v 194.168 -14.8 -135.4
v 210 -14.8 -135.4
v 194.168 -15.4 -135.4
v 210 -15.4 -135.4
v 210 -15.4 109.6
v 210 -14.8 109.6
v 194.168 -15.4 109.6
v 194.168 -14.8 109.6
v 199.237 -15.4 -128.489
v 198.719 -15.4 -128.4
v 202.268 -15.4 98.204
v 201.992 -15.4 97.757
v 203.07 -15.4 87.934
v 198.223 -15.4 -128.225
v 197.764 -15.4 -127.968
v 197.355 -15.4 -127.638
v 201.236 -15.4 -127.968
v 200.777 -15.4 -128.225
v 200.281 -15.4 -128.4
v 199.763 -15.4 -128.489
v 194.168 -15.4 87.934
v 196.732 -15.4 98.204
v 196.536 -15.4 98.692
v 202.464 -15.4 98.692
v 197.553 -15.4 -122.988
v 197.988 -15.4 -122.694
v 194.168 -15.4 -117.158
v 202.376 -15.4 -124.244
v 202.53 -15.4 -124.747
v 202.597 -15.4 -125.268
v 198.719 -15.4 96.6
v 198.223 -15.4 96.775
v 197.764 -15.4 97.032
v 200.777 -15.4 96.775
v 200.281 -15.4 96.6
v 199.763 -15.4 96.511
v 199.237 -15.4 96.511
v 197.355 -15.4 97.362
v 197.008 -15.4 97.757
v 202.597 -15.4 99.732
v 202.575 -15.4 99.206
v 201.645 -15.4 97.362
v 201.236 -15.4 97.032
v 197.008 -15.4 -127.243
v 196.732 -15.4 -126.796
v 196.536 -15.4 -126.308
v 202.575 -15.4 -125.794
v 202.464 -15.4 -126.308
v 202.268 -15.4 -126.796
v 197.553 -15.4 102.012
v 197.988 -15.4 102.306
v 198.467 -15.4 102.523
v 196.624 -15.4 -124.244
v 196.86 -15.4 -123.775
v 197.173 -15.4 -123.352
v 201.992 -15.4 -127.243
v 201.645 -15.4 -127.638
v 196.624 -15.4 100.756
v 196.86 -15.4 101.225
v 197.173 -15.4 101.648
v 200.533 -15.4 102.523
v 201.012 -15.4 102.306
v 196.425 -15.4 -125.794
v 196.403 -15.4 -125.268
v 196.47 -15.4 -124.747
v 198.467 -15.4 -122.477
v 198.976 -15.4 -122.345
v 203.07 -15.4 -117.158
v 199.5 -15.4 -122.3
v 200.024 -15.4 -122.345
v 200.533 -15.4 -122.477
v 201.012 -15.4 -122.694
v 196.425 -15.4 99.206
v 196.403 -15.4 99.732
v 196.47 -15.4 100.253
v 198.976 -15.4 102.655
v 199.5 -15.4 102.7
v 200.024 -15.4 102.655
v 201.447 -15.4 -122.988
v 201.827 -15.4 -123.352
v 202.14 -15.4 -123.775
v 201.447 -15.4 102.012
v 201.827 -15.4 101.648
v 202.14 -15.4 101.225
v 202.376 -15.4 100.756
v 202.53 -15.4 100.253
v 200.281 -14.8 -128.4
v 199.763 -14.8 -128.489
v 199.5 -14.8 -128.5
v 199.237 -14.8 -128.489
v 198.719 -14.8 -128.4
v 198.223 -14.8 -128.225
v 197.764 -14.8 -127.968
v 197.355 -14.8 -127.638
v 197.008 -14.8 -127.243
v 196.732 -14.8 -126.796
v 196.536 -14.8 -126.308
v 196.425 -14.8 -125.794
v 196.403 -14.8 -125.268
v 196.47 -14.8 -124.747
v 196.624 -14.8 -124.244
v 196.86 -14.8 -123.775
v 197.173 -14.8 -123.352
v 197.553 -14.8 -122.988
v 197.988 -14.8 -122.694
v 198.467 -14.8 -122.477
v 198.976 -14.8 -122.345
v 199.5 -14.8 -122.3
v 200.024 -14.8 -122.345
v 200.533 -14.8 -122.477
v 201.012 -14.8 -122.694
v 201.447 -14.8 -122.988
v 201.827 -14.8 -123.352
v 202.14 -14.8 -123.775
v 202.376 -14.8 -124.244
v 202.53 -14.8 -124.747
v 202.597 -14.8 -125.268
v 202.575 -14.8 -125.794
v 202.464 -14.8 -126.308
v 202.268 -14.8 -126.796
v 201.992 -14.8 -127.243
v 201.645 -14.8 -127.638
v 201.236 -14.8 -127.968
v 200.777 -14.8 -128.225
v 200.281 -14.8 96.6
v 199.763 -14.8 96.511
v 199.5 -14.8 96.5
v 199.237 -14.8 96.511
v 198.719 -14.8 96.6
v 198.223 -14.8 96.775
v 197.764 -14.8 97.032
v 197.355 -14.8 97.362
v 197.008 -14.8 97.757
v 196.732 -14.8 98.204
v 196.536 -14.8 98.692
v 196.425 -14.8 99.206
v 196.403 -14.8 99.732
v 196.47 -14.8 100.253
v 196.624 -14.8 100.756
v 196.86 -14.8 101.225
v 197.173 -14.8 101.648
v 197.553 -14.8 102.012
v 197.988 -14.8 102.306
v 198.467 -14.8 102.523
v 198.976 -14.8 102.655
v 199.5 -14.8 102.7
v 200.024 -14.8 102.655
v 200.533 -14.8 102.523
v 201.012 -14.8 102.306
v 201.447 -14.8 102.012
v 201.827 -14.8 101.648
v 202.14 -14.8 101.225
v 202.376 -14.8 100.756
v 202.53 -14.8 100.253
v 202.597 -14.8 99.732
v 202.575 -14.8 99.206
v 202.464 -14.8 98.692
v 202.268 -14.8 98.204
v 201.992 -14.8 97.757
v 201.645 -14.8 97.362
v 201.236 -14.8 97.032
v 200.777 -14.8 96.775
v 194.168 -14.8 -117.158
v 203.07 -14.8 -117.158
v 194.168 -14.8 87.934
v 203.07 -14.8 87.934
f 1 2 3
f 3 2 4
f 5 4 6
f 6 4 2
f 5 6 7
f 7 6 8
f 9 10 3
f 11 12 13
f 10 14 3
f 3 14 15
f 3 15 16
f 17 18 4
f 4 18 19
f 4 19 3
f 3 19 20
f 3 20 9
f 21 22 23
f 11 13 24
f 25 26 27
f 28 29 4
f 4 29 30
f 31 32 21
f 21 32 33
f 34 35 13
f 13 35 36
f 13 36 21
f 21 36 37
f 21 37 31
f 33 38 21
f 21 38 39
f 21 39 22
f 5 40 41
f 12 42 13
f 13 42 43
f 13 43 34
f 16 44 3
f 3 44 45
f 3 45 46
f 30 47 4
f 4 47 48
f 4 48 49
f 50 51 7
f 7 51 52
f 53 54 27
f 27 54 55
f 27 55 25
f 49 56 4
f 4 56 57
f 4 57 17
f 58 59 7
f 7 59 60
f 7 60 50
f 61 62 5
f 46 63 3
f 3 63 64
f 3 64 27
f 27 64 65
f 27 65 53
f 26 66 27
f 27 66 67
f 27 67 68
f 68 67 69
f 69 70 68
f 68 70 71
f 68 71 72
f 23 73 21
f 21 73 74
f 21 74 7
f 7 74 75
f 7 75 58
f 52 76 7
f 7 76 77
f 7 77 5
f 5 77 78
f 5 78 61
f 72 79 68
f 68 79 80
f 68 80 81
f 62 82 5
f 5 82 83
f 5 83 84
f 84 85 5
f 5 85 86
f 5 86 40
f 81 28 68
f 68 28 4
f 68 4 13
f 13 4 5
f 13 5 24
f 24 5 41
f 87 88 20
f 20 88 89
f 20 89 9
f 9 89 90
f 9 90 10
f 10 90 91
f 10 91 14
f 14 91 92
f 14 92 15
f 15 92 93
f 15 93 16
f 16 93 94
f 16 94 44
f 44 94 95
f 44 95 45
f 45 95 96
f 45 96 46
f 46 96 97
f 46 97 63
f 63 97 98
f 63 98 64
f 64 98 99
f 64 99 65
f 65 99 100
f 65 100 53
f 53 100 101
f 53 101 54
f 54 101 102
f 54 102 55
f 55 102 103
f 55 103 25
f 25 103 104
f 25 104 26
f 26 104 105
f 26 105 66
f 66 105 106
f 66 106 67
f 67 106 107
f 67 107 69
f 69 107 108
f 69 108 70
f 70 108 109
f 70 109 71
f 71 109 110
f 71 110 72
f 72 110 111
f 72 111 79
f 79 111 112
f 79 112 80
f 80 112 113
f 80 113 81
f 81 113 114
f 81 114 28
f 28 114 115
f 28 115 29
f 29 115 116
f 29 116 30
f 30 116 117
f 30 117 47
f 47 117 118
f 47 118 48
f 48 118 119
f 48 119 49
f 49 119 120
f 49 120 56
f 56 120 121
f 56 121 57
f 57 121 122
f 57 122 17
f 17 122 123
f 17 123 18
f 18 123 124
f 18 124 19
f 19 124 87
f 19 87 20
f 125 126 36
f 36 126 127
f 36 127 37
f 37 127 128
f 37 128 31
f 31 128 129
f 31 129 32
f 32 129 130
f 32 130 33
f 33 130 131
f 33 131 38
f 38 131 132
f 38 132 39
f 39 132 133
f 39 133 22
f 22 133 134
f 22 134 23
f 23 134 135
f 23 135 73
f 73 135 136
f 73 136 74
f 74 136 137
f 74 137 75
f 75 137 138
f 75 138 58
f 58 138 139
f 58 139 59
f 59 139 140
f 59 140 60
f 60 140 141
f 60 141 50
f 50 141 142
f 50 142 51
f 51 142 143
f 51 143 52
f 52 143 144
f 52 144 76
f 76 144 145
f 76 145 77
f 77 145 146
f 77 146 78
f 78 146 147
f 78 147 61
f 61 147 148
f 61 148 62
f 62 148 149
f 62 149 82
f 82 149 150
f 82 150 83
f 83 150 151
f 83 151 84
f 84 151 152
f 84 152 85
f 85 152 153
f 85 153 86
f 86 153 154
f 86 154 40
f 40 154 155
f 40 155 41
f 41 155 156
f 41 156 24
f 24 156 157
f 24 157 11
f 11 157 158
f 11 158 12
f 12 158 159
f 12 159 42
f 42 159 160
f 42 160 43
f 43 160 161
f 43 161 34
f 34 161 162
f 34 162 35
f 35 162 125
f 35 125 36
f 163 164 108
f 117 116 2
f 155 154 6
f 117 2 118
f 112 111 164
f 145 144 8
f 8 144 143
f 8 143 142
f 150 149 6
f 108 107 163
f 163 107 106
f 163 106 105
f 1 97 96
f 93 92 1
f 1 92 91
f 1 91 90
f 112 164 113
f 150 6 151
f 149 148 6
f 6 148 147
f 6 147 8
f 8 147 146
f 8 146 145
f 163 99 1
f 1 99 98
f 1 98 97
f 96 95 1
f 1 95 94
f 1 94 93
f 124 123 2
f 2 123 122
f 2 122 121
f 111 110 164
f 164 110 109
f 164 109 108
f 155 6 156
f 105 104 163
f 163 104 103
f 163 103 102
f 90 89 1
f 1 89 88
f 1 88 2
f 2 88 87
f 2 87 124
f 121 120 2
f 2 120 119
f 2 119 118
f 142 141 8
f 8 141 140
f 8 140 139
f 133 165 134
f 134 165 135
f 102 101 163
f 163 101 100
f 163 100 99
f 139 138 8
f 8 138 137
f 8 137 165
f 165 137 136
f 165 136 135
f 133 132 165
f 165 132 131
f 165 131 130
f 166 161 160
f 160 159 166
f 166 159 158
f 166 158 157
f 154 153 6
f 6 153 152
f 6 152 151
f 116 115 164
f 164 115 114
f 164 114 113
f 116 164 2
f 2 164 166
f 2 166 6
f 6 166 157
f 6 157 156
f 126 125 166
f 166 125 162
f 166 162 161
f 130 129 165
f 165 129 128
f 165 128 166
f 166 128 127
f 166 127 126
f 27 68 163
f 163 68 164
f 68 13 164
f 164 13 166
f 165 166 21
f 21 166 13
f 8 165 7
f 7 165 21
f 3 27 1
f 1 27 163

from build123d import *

# Parameters (mm, degrees)
BOSS_EXTRUDE1_DEPTH   = 5.5
BOSS_EXTRUDE1_2_DEPTH = 5.5
SKETCH2_W             = 112.4
SKETCH2_H             = 112.4
BOSS_EXTRUDE2_DEPTH   = 9.4
BOSS_EXTRUDE3_START   = 9.4
SKETCH2_3_W           = 246
SKETCH2_3_H           = 245
BOSS_EXTRUDE3_DEPTH   = 6
SKETCH3_R             = 3.1
CUT_EXTRUDE1_DEPTH    = 251.310147617
BOSS_EXTRUDE4_DEPTH   = 15
SKETCH5_W             = 16
SKETCH5_H             = 22.5
BOSS_EXTRUDE5_DEPTH   = 3.9
SKETCH6_W             = 16
SKETCH6_H             = 20.5
CUT_EXTRUDE2_DEPTH    = 3.4
CHAMFER1_SIZE         = 2
CHAMFER2_SIZE         = 3.05
CHAMFER3_SIZE         = 3
CHAMFER4_SIZE         = 3
SKETCH8_W             = 79.1
SKETCH8_H             = 5
CUT_EXTRUDE3_DEPTH    = 0.1
SKETCH9_W             = 246
SKETCH9_H             = 27.9
CUT_EXTRUDE4_DEPTH    = 324.051327191
CUT_EXTRUDE5_DEPTH    = 250.867004624
SKETCH11_W            = 230.168067581
SKETCH11_H            = 245
CUT_EXTRUDE6_DEPTH    = 250.867004624


with BuildPart() as part:
    # Sketch1 → Boss-Extrude1 (new body)
    with BuildSketch(Plane(origin=(0, 0, 0), x_dir=(1, 0, 0), z_dir=(0, 1, 0))):
        Polygon((-6, -6), (-6, 106.4), (7.7, 106.4), (7.7, 100.4), (0, 100.4), (0, 0), (100.4, 0), (100.4, 40.9), (106.4, 40.9), (106.4, -6), align=None)
    extrude(amount=BOSS_EXTRUDE1_DEPTH)



with BuildPart() as body_2:
    # Sketch1 → Boss-Extrude1 2 (new body)
    with BuildSketch(Plane(origin=(0, 0, 0), x_dir=(1, 0, 0), z_dir=(0, 1, 0))):
        Polygon((92.7, 100.4), (92.7, 106.4), (106.4, 106.4), (106.4, 59.5), (100.4, 59.5), (100.4, 100.4), align=None)
    extrude(amount=BOSS_EXTRUDE1_2_DEPTH)


with BuildPart() as part_1:
    add(part.part)

    add(body_2.part)  # Boss-Extrude2 merges body 2
    # Sketch2 → Boss-Extrude2 (add)
    with BuildSketch(Plane.XZ):
        with Locations((50.2, -50.2)):
            Rectangle(SKETCH2_W, SKETCH2_H)
    extrude(amount=BOSS_EXTRUDE2_DEPTH)

    # Sketch2<3> → Boss-Extrude3 (add)
    with BuildSketch(Plane.XZ.offset(BOSS_EXTRUDE3_START)):
        with Locations((87, -12.9)):
            Rectangle(SKETCH2_3_W, SKETCH2_3_H)
    extrude(amount=BOSS_EXTRUDE3_DEPTH)

    # Sketch3 → Cut-Extrude1 (cut, through all)
    with BuildSketch(Plane(origin=(0, -9.4, 0), x_dir=(1, 0, 0), z_dir=(0, 1, 0))):
        with Locations(Location((-26.5, 125.4, 0), (0, 0, 270))):
            Circle(SKETCH3_R)
        with Locations(Location((-26.5, -99.6, 0), (0, 0, 90))):
            Circle(SKETCH3_R)
        with Locations(Location((199.5, 125.4, 0), (0, 0, 270))):
            Circle(SKETCH3_R)
        with Locations(Location((199.5, -99.6, 0), (0, 0, 270))):
            Circle(SKETCH3_R)
    extrude(amount=-CUT_EXTRUDE1_DEPTH, mode=Mode.SUBTRACT)

    # Sketch4 → Boss-Extrude4 (add)
    with BuildSketch(Plane(origin=(0, -9.4, 0), x_dir=(1, 0, 0), z_dir=(0, 1, 0))):
        with BuildLine():
            Line((-16, -109.6), (49, -109.6))
            Line((49, -109.6), (49, -6))
            Line((49, -6), (-36, -6))
            Line((-36, -6), (-36, -89.6))
            Line((-36, -89.6), (-22, -89.6))
            ThreePointArc((-22, -89.6), (-17.757359313, -91.357359313), (-16, -95.6))
            Line((-16, -95.6), (-16, -109.6))
        make_face()
    extrude(amount=BOSS_EXTRUDE4_DEPTH)

    # Sketch5 → Boss-Extrude5 (add)
    with BuildSketch(Plane(origin=(0, 0, -106.4), x_dir=(-1, 0, 0), z_dir=(0, 0, -1))):
        with Locations((-99.9, 1.85)):
            Rectangle(SKETCH5_W, SKETCH5_H)
        with Locations((-0.5, 1.85)):
            Rectangle(SKETCH5_W, SKETCH5_H)
    extrude(amount=BOSS_EXTRUDE5_DEPTH)

    # Sketch6 → Cut-Extrude2 (cut)
    with BuildSketch(Plane(origin=(0, 0, -110.3), x_dir=(-1, 0, 0), z_dir=(0, 0, -1))):
        with Locations((-0.5, 0.85)):
            Rectangle(SKETCH6_W, SKETCH6_H)
        with Locations((-99.9, 0.85)):
            Rectangle(SKETCH6_W, SKETCH6_H)
    extrude(amount=-CUT_EXTRUDE2_DEPTH, mode=Mode.SUBTRACT)

    # Chamfer1
    # the kernel refuses this chamfer: 2 mm, written as the material it adds along each edge
    with BuildSketch(Plane(origin=(92.7, -5.143365976, -106.4), x_dir=(-0.9996219169112968, 0, -0.027495876610589005), z_dir=(0, 1, 0))) as chamfer1_piece_1_section:
        Polygon((CHAMFER1_SIZE * 0.999621916911, CHAMFER1_SIZE * 0.0274958766106), (-CHAMFER1_SIZE * 0.0274958766106, CHAMFER1_SIZE * 0.999621916911), (0, 0), align=None)
    chamfer1_piece_1 = extrude(amount=10.643365976, mode=Mode.PRIVATE)
    chamfer1_piece_1 = split(chamfer1_piece_1, bisect_by=Plane(origin=(91.9, -2.571682988, -105.57221902), z_dir=(1, 0, 0)), keep=Keep.TOP, mode=Mode.PRIVATE)
    add(chamfer1_piece_1)
    with BuildSketch(Plane(origin=(92.7, 5.5, -106.4), x_dir=(0, 0.9996219169112968, -0.027495876610589075), z_dir=(1, 0, 0)), Plane(origin=(-6, 5.5, -106.4), x_dir=(0, 0.9996219169112968, -0.027495876610589075), z_dir=(1, 0, 0))) as chamfer1_piece_2:
        Polygon((CHAMFER1_SIZE * 0.999621916911, CHAMFER1_SIZE * 0.0274958766106), (-CHAMFER1_SIZE * 0.0274958766106, CHAMFER1_SIZE * 0.999621916911), (0, 0), align=None)
    extrude(amount=13.7)
    with BuildSketch(Plane(origin=(106.4, 5.5, -106.4), x_dir=(-0.027495876610589005, 0, 0.9996219169112968), z_dir=(0, -1, 0))) as chamfer1_piece_3_section:
        Polygon((CHAMFER1_SIZE * 0.999621916911, -CHAMFER1_SIZE * 0.0274958766106), (-CHAMFER1_SIZE * 0.0274958766106, -CHAMFER1_SIZE * 0.999621916911), (0, 0), align=None)
    chamfer1_piece_3 = extrude(amount=14.9, mode=Mode.PRIVATE)
    chamfer1_piece_3 = split(chamfer1_piece_3, bisect_by=Plane(origin=(107.9, -1.95, -105.69608178), z_dir=(-1, 0, 0)), keep=Keep.TOP, mode=Mode.PRIVATE)
    add(chamfer1_piece_3)
    with BuildSketch(Plane(origin=(106.4, 5.5, -106.4), x_dir=(-0.027495876610589005, 0, 0.9996219169112968), z_dir=(0, -1, 0))) as chamfer1_piece_4_section:
        Polygon((CHAMFER1_SIZE * 0.999621916911, -CHAMFER1_SIZE * 0.0274958766106), (-CHAMFER1_SIZE * 0.0274958766106, -CHAMFER1_SIZE * 0.999621916911), (0, 0), align=None)
    chamfer1_piece_4 = extrude(amount=20.043365976, mode=Mode.PRIVATE)
    chamfer1_piece_4 = split(chamfer1_piece_4, bisect_by=Plane(origin=(106.974972825, -9.4, -105.69608178), z_dir=(0, -1, 0)), keep=Keep.TOP, mode=Mode.PRIVATE)
    chamfer1_piece_4 = split(chamfer1_piece_4, bisect_by=Plane(origin=(107.9, -11.971682988, -105.69608178), z_dir=(-1, 0, 0)), keep=Keep.TOP, mode=Mode.PRIVATE)
    add(chamfer1_piece_4)
    with BuildSketch(Plane(origin=(106.4, 5.5, -106.4), x_dir=(-0.027495876610589005, 0, 0.9996219169112968), z_dir=(0, -1, 0))) as chamfer1_piece_5_section:
        Polygon((CHAMFER1_SIZE * 0.999621916911, -CHAMFER1_SIZE * 0.0274958766106), (-CHAMFER1_SIZE * 0.0274958766106, -CHAMFER1_SIZE * 0.999621916911), (0, 0), align=None)
    chamfer1_piece_5 = extrude(amount=20.043365976, mode=Mode.PRIVATE)
    chamfer1_piece_5 = split(chamfer1_piece_5, bisect_by=Plane(origin=(108.09753906, -9.4, -106.284213701), z_dir=(0, -1, 0)), keep=Keep.TOP, mode=Mode.PRIVATE)
    chamfer1_piece_5 = split(chamfer1_piece_5, bisect_by=Plane(origin=(107.9, -11.971682988, -106.284213701), z_dir=(1, 0, 0)), keep=Keep.TOP, mode=Mode.PRIVATE)
    add(chamfer1_piece_5)
    with BuildSketch(Plane(origin=(7.7, -5.143365976, -106.4), x_dir=(0.9996219169112965, 0, -0.027495876610589057), z_dir=(0, 1, 0))) as chamfer1_piece_6_section:
        Polygon((CHAMFER1_SIZE * 0.999621916911, -CHAMFER1_SIZE * 0.0274958766106), (-CHAMFER1_SIZE * 0.0274958766106, -CHAMFER1_SIZE * 0.999621916911), (0, 0), align=None)
    chamfer1_piece_6 = extrude(amount=10.643365976, mode=Mode.PRIVATE)
    chamfer1_piece_6 = split(chamfer1_piece_6, bisect_by=Plane(origin=(8.5, -2.571682988, -105.57221902), z_dir=(-1, 0, 0)), keep=Keep.TOP, mode=Mode.PRIVATE)
    add(chamfer1_piece_6)
    with BuildSketch(Plane(origin=(-6, 5.5, -106.4), x_dir=(-0.9996219169112968, 0, -0.027495876610589075), z_dir=(0, -1, 0))) as chamfer1_piece_7_section:
        Polygon((CHAMFER1_SIZE * 0.999621916911, -CHAMFER1_SIZE * 0.0274958766106), (-CHAMFER1_SIZE * 0.0274958766106, -CHAMFER1_SIZE * 0.999621916911), (0, 0), align=None)
    chamfer1_piece_7 = extrude(amount=14.9, mode=Mode.PRIVATE)
    chamfer1_piece_7 = split(chamfer1_piece_7, bisect_by=Plane(origin=(-7.5, -1.95, -105.69608178), z_dir=(1, 0, 0)), keep=Keep.TOP, mode=Mode.PRIVATE)
    add(chamfer1_piece_7)
    with BuildSketch(Plane(origin=(-6, 5.5, -106.4), x_dir=(-0.9996219169112968, 0, -0.027495876610589075), z_dir=(0, -1, 0))) as chamfer1_piece_8_section:
        Polygon((CHAMFER1_SIZE * 0.999621916911, -CHAMFER1_SIZE * 0.0274958766106), (-CHAMFER1_SIZE * 0.0274958766106, -CHAMFER1_SIZE * 0.999621916911), (0, 0), align=None)
    chamfer1_piece_8 = extrude(amount=20.043365976, mode=Mode.PRIVATE)
    chamfer1_piece_8 = split(chamfer1_piece_8, bisect_by=Plane(origin=(-7.69753906, -9.4, -106.284213701), z_dir=(0, -1, 0)), keep=Keep.TOP, mode=Mode.PRIVATE)
    chamfer1_piece_8 = split(chamfer1_piece_8, bisect_by=Plane(origin=(-7.5, -11.971682988, -106.284213701), z_dir=(-1, 0, 0)), keep=Keep.TOP, mode=Mode.PRIVATE)
    add(chamfer1_piece_8)
    with BuildSketch(Plane(origin=(-6, 5.5, -106.4), x_dir=(-0.9996219169112968, 0, -0.027495876610589075), z_dir=(0, -1, 0))) as chamfer1_piece_9_section:
        Polygon((CHAMFER1_SIZE * 0.999621916911, -CHAMFER1_SIZE * 0.0274958766106), (-CHAMFER1_SIZE * 0.0274958766106, -CHAMFER1_SIZE * 0.999621916911), (0, 0), align=None)
    chamfer1_piece_9 = extrude(amount=20.043365976, mode=Mode.PRIVATE)
    chamfer1_piece_9 = split(chamfer1_piece_9, bisect_by=Plane(origin=(-6.574972825, -9.4, -105.69608178), z_dir=(0, -1, 0)), keep=Keep.TOP, mode=Mode.PRIVATE)
    chamfer1_piece_9 = split(chamfer1_piece_9, bisect_by=Plane(origin=(-7.5, -11.971682988, -105.69608178), z_dir=(1, 0, 0)), keep=Keep.TOP, mode=Mode.PRIVATE)
    add(chamfer1_piece_9)
    with BuildSketch(Plane(origin=(87.556634024, 5.5, -106.4), x_dir=(0, 0.9996219169112968, -0.027495876610589075), z_dir=(1, 0, 0))) as chamfer1_piece_10a_section:
        Polygon((CHAMFER1_SIZE * 0.999621916911, CHAMFER1_SIZE * 0.0274958766106), (-CHAMFER1_SIZE * 0.0274958766106, CHAMFER1_SIZE * 0.999621916911), (0, 0), align=None)
    chamfer1_piece_10a = extrude(amount=18.843365976, mode=Mode.PRIVATE)
    chamfer1_piece_10a = split(chamfer1_piece_10a, bisect_by=Plane(origin=(91.9, 6.159587254, -105.740412746), z_dir=(1, 0, 0)), keep=Keep.TOP, mode=Mode.PRIVATE)
    chamfer1_piece_10a = split(chamfer1_piece_10a, bisect_by=Plane(origin=(92.7, 6.159587254, -105.740412746), z_dir=(-1, 0, 0)), keep=Keep.TOP, mode=Mode.PRIVATE)
    with BuildSketch(Plane(origin=(92.7, 0, -106.4), x_dir=(-0.9996219169112968, 0, -0.027495876610589005), z_dir=(0, 1, 0))) as chamfer1_piece_10b_section:
        Polygon((CHAMFER1_SIZE * 0.999621916911, CHAMFER1_SIZE * 0.0274958766106), (-CHAMFER1_SIZE * 0.0274958766106, CHAMFER1_SIZE * 0.999621916911), (0, 0), align=None)
    chamfer1_piece_10b = extrude(amount=10.643365976, mode=Mode.PRIVATE)
    chamfer1_piece_10b = split(chamfer1_piece_10b, bisect_by=Plane(origin=(91.9, 8.071682988, -105.57221902), z_dir=(1, 0, 0)), keep=Keep.TOP, mode=Mode.PRIVATE)
    chamfer1_piece_10b = split(chamfer1_piece_10b, bisect_by=Plane(origin=(92.36112716, 5.5, -105.57221902), z_dir=(0, 1, 0)), keep=Keep.TOP, mode=Mode.PRIVATE)
    chamfer1_piece_10 = chamfer1_piece_10a & chamfer1_piece_10b
    add(chamfer1_piece_10)
    with BuildSketch(Plane(origin=(106.4, 10.643365976, -106.4), x_dir=(-0.027495876610589005, 0, 0.9996219169112968), z_dir=(0, -1, 0))) as chamfer1_piece_11a_section:
        Polygon((CHAMFER1_SIZE * 0.999621916911, -CHAMFER1_SIZE * 0.0274958766106), (-CHAMFER1_SIZE * 0.0274958766106, -CHAMFER1_SIZE * 0.999621916911), (0, 0), align=None)
    chamfer1_piece_11a = extrude(amount=20.043365976, mode=Mode.PRIVATE)
    chamfer1_piece_11a = split(chamfer1_piece_11a, bisect_by=Plane(origin=(106.974972825, 5.5, -105.69608178), z_dir=(0, 1, 0)), keep=Keep.TOP, mode=Mode.PRIVATE)
    chamfer1_piece_11a = split(chamfer1_piece_11a, bisect_by=Plane(origin=(107.9, 8.071682988, -105.69608178), z_dir=(-1, 0, 0)), keep=Keep.TOP, mode=Mode.PRIVATE)
    with BuildSketch(Plane(origin=(92.7, 5.5, -106.4), x_dir=(0, 0.9996219169112968, -0.027495876610589075), z_dir=(1, 0, 0))) as chamfer1_piece_11b_section:
        Polygon((CHAMFER1_SIZE * 0.999621916911, CHAMFER1_SIZE * 0.0274958766106), (-CHAMFER1_SIZE * 0.0274958766106, CHAMFER1_SIZE * 0.999621916911), (0, 0), align=None)
    chamfer1_piece_11b = extrude(amount=18.843365976, mode=Mode.PRIVATE)
    chamfer1_piece_11b = split(chamfer1_piece_11b, bisect_by=Plane(origin=(106.4, 6.159587254, -105.740412746), z_dir=(1, 0, 0)), keep=Keep.TOP, mode=Mode.PRIVATE)
    chamfer1_piece_11b = split(chamfer1_piece_11b, bisect_by=Plane(origin=(107.9, 6.159587254, -105.740412746), z_dir=(-1, 0, 0)), keep=Keep.TOP, mode=Mode.PRIVATE)
    chamfer1_piece_11 = chamfer1_piece_11a & chamfer1_piece_11b
    add(chamfer1_piece_11)
    with BuildSketch(Plane(origin=(-6, 5.5, -106.4), x_dir=(0, 0.9996219169112968, -0.027495876610589075), z_dir=(1, 0, 0))) as chamfer1_piece_12a_section:
        Polygon((CHAMFER1_SIZE * 0.999621916911, CHAMFER1_SIZE * 0.0274958766106), (-CHAMFER1_SIZE * 0.0274958766106, CHAMFER1_SIZE * 0.999621916911), (0, 0), align=None)
    chamfer1_piece_12a = extrude(amount=18.843365976, mode=Mode.PRIVATE)
    chamfer1_piece_12a = split(chamfer1_piece_12a, bisect_by=Plane(origin=(8.5, 6.159587254, -105.740412746), z_dir=(-1, 0, 0)), keep=Keep.TOP, mode=Mode.PRIVATE)
    chamfer1_piece_12a = split(chamfer1_piece_12a, bisect_by=Plane(origin=(7.7, 6.159587254, -105.740412746), z_dir=(1, 0, 0)), keep=Keep.TOP, mode=Mode.PRIVATE)
    with BuildSketch(Plane(origin=(7.7, 0, -106.4), x_dir=(0.9996219169112965, 0, -0.027495876610589057), z_dir=(0, 1, 0))) as chamfer1_piece_12b_section:
        Polygon((CHAMFER1_SIZE * 0.999621916911, -CHAMFER1_SIZE * 0.0274958766106), (-CHAMFER1_SIZE * 0.0274958766106, -CHAMFER1_SIZE * 0.999621916911), (0, 0), align=None)
    chamfer1_piece_12b = extrude(amount=10.643365976, mode=Mode.PRIVATE)
    chamfer1_piece_12b = split(chamfer1_piece_12b, bisect_by=Plane(origin=(8.5, 8.071682988, -105.57221902), z_dir=(-1, 0, 0)), keep=Keep.TOP, mode=Mode.PRIVATE)
    chamfer1_piece_12b = split(chamfer1_piece_12b, bisect_by=Plane(origin=(8.03887284, 5.5, -105.57221902), z_dir=(0, 1, 0)), keep=Keep.TOP, mode=Mode.PRIVATE)
    chamfer1_piece_12 = chamfer1_piece_12a & chamfer1_piece_12b
    add(chamfer1_piece_12)
    with BuildSketch(Plane(origin=(-6, 10.643365976, -106.4), x_dir=(-0.9996219169112968, 0, -0.027495876610589075), z_dir=(0, -1, 0))) as chamfer1_piece_13a_section:
        Polygon((CHAMFER1_SIZE * 0.999621916911, -CHAMFER1_SIZE * 0.0274958766106), (-CHAMFER1_SIZE * 0.0274958766106, -CHAMFER1_SIZE * 0.999621916911), (0, 0), align=None)
    chamfer1_piece_13a = extrude(amount=20.043365976, mode=Mode.PRIVATE)
    chamfer1_piece_13a = split(chamfer1_piece_13a, bisect_by=Plane(origin=(-7.5, 8.071682988, -105.69608178), z_dir=(1, 0, 0)), keep=Keep.TOP, mode=Mode.PRIVATE)
    chamfer1_piece_13a = split(chamfer1_piece_13a, bisect_by=Plane(origin=(-6.574972825, 5.5, -105.69608178), z_dir=(0, 1, 0)), keep=Keep.TOP, mode=Mode.PRIVATE)
    with BuildSketch(Plane(origin=(-11.143365976, 5.5, -106.4), x_dir=(0, 0.9996219169112968, -0.027495876610589075), z_dir=(1, 0, 0))) as chamfer1_piece_13b_section:
        Polygon((CHAMFER1_SIZE * 0.999621916911, CHAMFER1_SIZE * 0.0274958766106), (-CHAMFER1_SIZE * 0.0274958766106, CHAMFER1_SIZE * 0.999621916911), (0, 0), align=None)
    chamfer1_piece_13b = extrude(amount=18.843365976, mode=Mode.PRIVATE)
    chamfer1_piece_13b = split(chamfer1_piece_13b, bisect_by=Plane(origin=(-7.5, 6.159587254, -105.740412746), z_dir=(1, 0, 0)), keep=Keep.TOP, mode=Mode.PRIVATE)
    chamfer1_piece_13b = split(chamfer1_piece_13b, bisect_by=Plane(origin=(-6, 6.159587254, -105.740412746), z_dir=(-1, 0, 0)), keep=Keep.TOP, mode=Mode.PRIVATE)
    chamfer1_piece_13 = chamfer1_piece_13a & chamfer1_piece_13b
    add(chamfer1_piece_13)
    # the kernel refuses this chamfer: 2 mm, written as the material it takes off along each edge
    with BuildSketch(Plane(origin=(113.043365976, 13.1, -106.4), x_dir=(1.4427442484973125e-15, -0.9996219169112968, 0.027495876610589075), z_dir=(-1, 0, 0)), Plane(origin=(-12.643365976, 13.1, -106.4), x_dir=(0, 0.027495876610586414, -0.9996219169112968), z_dir=(1, 0, 0))) as chamfer1_2_piece_1:
        Polygon((CHAMFER1_SIZE * 0.999621916911, -CHAMFER1_SIZE * 0.0274958766106), (-CHAMFER1_SIZE * 0.0274958766106, -CHAMFER1_SIZE * 0.999621916911), (0, 0), align=None)
    extrude(amount=26.286731952, mode=Mode.SUBTRACT)

    # Chamfer2
    chamfer2_edges = [part_1.edges().sort_by_distance(p)[0] for p in [
        (199.5, -9.4, -128.5),
        (-26.5, -9.4, -128.5),
        (-26.5, -9.4, 102.7),
        (199.5, -9.4, 96.5),
    ]]
    chamfer(chamfer2_edges, length=CHAMFER2_SIZE)

    # Chamfer3
    chamfer3_edges = [part_1.edges().sort_by_distance(p)[0] for p in [
        (106.4, 5.5, -17.45),
    ]]
    chamfer(chamfer3_edges, length=CHAMFER3_SIZE)
    chamfer3_2_edges = [part_1.edges().sort_by_distance(p)[0] for p in [
        (106.4, 5.5, -81.95),
    ]]
    chamfer(chamfer3_2_edges, length=CHAMFER3_SIZE)
    chamfer3_3_edges = [part_1.edges().sort_by_distance(p)[0] for p in [
        (76.2, 5.5, 6),
    ]]
    chamfer(chamfer3_3_edges, length=CHAMFER3_SIZE)
    chamfer3_4_edges = [part_1.edges().sort_by_distance(p)[0] for p in [
        (49, 5.6, 57.8),
    ]]
    chamfer(chamfer3_4_edges, length=CHAMFER3_SIZE)
    chamfer3_5_edges = [part_1.edges().sort_by_distance(p)[0] for p in [
        (15, 5.6, 109.6),
    ]]
    chamfer(chamfer3_5_edges, length=CHAMFER3_SIZE)
    chamfer3_6_edges = [part_1.edges().sort_by_distance(p)[0] for p in [
        (-36, 5.6, 47.8),
    ]]
    chamfer(chamfer3_6_edges, length=CHAMFER3_SIZE)
    chamfer3_7_edges = [part_1.edges().sort_by_distance(p)[0] for p in [
        (-6, 5.5, -49.2),
    ]]
    chamfer(chamfer3_7_edges, length=CHAMFER3_SIZE)
    chamfer3_8_edges = [part_1.edges().sort_by_distance(p)[0] for p in [
        (-16, 5.6, 101.1),
        (-27.5, 5.6, 89.6),
        (-17.757359313, 5.6, 91.357359313),
    ]]
    chamfer(chamfer3_8_edges, length=CHAMFER3_SIZE)

    # Chamfer4
    chamfer4_edges = [part_1.edges().sort_by_distance(p)[0] for p in [
        (-36, -9.4, -64.7),
        (129.5, -9.4, 109.6),
        (-36, -3.4, 89.6),
        (-36, -3.4, 6),
        (-16, -3.4, 109.6),
        (49, -3.4, 109.6),
        (-36, -9.4, 99.6),
        (87, -9.4, -135.4),
        (-26, -9.4, 109.6),
        (210, -9.4, -12.9),
    ]]
    chamfer(chamfer4_edges, length=CHAMFER4_SIZE)

    # Sketch8 → Cut-Extrude3 (cut)
    with BuildSketch(Plane(origin=(0, 5.6, 0), x_dir=(1, 0, 0), z_dir=(0, 1, 0))):
        with Locations((6.55, -8.5)):
            Rectangle(SKETCH8_W, SKETCH8_H)
    extrude(amount=-CUT_EXTRUDE3_DEPTH, mode=Mode.SUBTRACT)

    # Chamfer5
    # the kernel refuses this chamfer: 3 mm, written as the material it takes off along each edge
    with BuildSketch(Plane(origin=(6.229157809, 5.5, 6), x_dir=(0, -0.9850292351397439, -0.17238737169529297), z_dir=(-1, 0, 0))) as chamfer5_piece_1_section:
        with BuildLine():
            Line((3.691663124, 0), (-1.253737533, 3.472249821))
            Line((-1.253737533, 3.472249821), (-1.697000689, 3.394675503))
            ThreePointArc((-1.697000689, 3.394675503), (-0.756697539, 1.713403919), (-0.443263156, -0.077574317))
            Line((-0.443263156, -0.077574317), (0.077574317, -0.443263156))
            ThreePointArc((0.077574317, -0.443263156), (1.868552553, -0.129828772), (3.769237441, -0.443263156))
            Line((3.769237441, -0.443263156), (3.691663124, 0))
        make_face()
    chamfer5_piece_1 = extrude(amount=39.229157809, mode=Mode.PRIVATE)
    chamfer5_piece_1 = split(chamfer5_piece_1, bisect_by=Plane(origin=(-4.039459416, 4.460540584, 7.280331392), z_dir=(-0.7071067811865476, 0.7071067811865476, 0)), keep=Keep.TOP, mode=Mode.PRIVATE)
    chamfer5_piece_1 = split(chamfer5_piece_1, bisect_by=Plane(origin=(-6, 5.114054112, 7.280331392), z_dir=(1, 0, 0)), keep=Keep.TOP, mode=Mode.PRIVATE)
    add(chamfer5_piece_1, mode=Mode.SUBTRACT)
    with BuildSketch(Plane(origin=(6.229157809, 5.5, 6), x_dir=(0, -0.9850292351397439, -0.17238737169529297), z_dir=(-1, 0, 0))) as chamfer5_piece_2_section:
        with BuildLine():
            Line((3.691663124, 0), (-1.253737533, 3.472249821))
            Line((-1.253737533, 3.472249821), (-1.697000689, 3.394675503))
            ThreePointArc((-1.697000689, 3.394675503), (-0.756697539, 1.713403919), (-0.443263156, -0.077574317))
            Line((-0.443263156, -0.077574317), (0.077574317, -0.443263156))
            ThreePointArc((0.077574317, -0.443263156), (1.868552553, -0.129828772), (3.769237441, -0.443263156))
            Line((3.769237441, -0.443263156), (3.691663124, 0))
        make_face()
    chamfer5_piece_2 = extrude(amount=39.229157809, mode=Mode.PRIVATE)
    chamfer5_piece_2 = split(chamfer5_piece_2, bisect_by=Plane(origin=(-6.302738925, 2.197261075, 5.315019574), z_dir=(0.7071067811865476, -0.7071067811865476, 0)), keep=Keep.TOP, mode=Mode.PRIVATE)
    chamfer5_piece_2 = split(chamfer5_piece_2, bisect_by=Plane(origin=(-6, 2.0963481, 5.315019574), z_dir=(-1, 0, 0)), keep=Keep.TOP, mode=Mode.PRIVATE)
    add(chamfer5_piece_2, mode=Mode.SUBTRACT)
    with BuildSketch(Plane(origin=(6.229157809, 5.5, 6), x_dir=(0, -0.9850292351397439, -0.17238737169529297), z_dir=(-1, 0, 0))) as chamfer5_piece_3_section:
        with BuildLine():
            Line((3.691663124, 0), (-1.253737533, 3.472249821))
            Line((-1.253737533, 3.472249821), (-1.697000689, 3.394675503))
            ThreePointArc((-1.697000689, 3.394675503), (-0.756697539, 1.713403919), (-0.443263156, -0.077574317))
            Line((-0.443263156, -0.077574317), (0.077574317, -0.443263156))
            ThreePointArc((0.077574317, -0.443263156), (1.868552553, -0.129828772), (3.769237441, -0.443263156))
            Line((3.769237441, -0.443263156), (3.691663124, 0))
        make_face()
    chamfer5_piece_3 = extrude(amount=39.229157809, mode=Mode.PRIVATE)
    chamfer5_piece_3 = split(chamfer5_piece_3, bisect_by=Plane(origin=(-11.711520685, -3.211520685, 6.918404597), z_dir=(-0.7071067811865476, 0.7071067811865476, 0)), keep=Keep.TOP, mode=Mode.PRIVATE)
    chamfer5_piece_3 = split(chamfer5_piece_3, bisect_by=Plane(origin=(-6, 4.583653926, 6.918404597), z_dir=(-1, 0, 0)), keep=Keep.TOP, mode=Mode.PRIVATE)
    add(chamfer5_piece_3, mode=Mode.SUBTRACT)
    with BuildSketch(Plane(origin=(6.229157809, 5.5, 6), x_dir=(0, -0.9850292351397439, -0.17238737169529297), z_dir=(-1, 0, 0))) as chamfer5_piece_4_section:
        with BuildLine():
            Line((3.691663124, 0), (-1.253737533, 3.472249821))
            Line((-1.253737533, 3.472249821), (-1.697000689, 3.394675503))
            ThreePointArc((-1.697000689, 3.394675503), (-0.756697539, 1.713403919), (-0.443263156, -0.077574317))
            Line((-0.443263156, -0.077574317), (0.077574317, -0.443263156))
            ThreePointArc((0.077574317, -0.443263156), (1.868552553, -0.129828772), (3.769237441, -0.443263156))
            Line((3.769237441, -0.443263156), (3.691663124, 0))
        make_face()
    chamfer5_piece_4 = extrude(amount=48.458315618, mode=Mode.PRIVATE)
    chamfer5_piece_4 = split(chamfer5_piece_4, bisect_by=Plane(origin=(-33, 4.582402261, 6.917597739), z_dir=(-1, 0, 0)), keep=Keep.TOP, mode=Mode.PRIVATE)
    add(chamfer5_piece_4, mode=Mode.SUBTRACT)

    # Sketch9 → Cut-Extrude4 (cut, through all)
    with BuildSketch(Plane.XY.offset(109.6)):
        with Locations((87, -0.85)):
            Rectangle(SKETCH9_W, SKETCH9_H)
    extrude(amount=-CUT_EXTRUDE4_DEPTH, mode=Mode.SUBTRACT)

    # Sketch10 → Cut-Extrude5 (cut, through all)
    with BuildSketch(Plane(origin=(0, -14.8, 0), x_dir=(1, 0, 0), z_dir=(0, 1, 0))):
        Polygon((-13.320267735, 126.74467243), (187.662657728, 126.74467243), (187.662657728, 117.157752647), (203.07020738, 117.157752647), (203.07020738, -87.933852724), (190.401777666, -87.933852724), (190.401777666, -102.656622391), (-18.113727627, -102.656622391), (-18.113727627, -87.933852724), (-30.439767349, -87.933852724), (-30.439767349, 117.157752647), (-18.113727627, 117.157752647), (-18.113727627, 126.74467243), align=None)
    extrude(amount=-CUT_EXTRUDE5_DEPTH, mode=Mode.SUBTRACT)

    # Sketch11 → Cut-Extrude6 (cut, through all)
    with BuildSketch(Plane(origin=(0, -14.8, 0), x_dir=(1, 0, 0), z_dir=(0, 1, 0))):
        with Locations((79.084033791, 12.9)):
            Rectangle(SKETCH11_W, SKETCH11_H)
    extrude(amount=-CUT_EXTRUDE6_DEPTH, mode=Mode.SUBTRACT)


solid = part_1.part
